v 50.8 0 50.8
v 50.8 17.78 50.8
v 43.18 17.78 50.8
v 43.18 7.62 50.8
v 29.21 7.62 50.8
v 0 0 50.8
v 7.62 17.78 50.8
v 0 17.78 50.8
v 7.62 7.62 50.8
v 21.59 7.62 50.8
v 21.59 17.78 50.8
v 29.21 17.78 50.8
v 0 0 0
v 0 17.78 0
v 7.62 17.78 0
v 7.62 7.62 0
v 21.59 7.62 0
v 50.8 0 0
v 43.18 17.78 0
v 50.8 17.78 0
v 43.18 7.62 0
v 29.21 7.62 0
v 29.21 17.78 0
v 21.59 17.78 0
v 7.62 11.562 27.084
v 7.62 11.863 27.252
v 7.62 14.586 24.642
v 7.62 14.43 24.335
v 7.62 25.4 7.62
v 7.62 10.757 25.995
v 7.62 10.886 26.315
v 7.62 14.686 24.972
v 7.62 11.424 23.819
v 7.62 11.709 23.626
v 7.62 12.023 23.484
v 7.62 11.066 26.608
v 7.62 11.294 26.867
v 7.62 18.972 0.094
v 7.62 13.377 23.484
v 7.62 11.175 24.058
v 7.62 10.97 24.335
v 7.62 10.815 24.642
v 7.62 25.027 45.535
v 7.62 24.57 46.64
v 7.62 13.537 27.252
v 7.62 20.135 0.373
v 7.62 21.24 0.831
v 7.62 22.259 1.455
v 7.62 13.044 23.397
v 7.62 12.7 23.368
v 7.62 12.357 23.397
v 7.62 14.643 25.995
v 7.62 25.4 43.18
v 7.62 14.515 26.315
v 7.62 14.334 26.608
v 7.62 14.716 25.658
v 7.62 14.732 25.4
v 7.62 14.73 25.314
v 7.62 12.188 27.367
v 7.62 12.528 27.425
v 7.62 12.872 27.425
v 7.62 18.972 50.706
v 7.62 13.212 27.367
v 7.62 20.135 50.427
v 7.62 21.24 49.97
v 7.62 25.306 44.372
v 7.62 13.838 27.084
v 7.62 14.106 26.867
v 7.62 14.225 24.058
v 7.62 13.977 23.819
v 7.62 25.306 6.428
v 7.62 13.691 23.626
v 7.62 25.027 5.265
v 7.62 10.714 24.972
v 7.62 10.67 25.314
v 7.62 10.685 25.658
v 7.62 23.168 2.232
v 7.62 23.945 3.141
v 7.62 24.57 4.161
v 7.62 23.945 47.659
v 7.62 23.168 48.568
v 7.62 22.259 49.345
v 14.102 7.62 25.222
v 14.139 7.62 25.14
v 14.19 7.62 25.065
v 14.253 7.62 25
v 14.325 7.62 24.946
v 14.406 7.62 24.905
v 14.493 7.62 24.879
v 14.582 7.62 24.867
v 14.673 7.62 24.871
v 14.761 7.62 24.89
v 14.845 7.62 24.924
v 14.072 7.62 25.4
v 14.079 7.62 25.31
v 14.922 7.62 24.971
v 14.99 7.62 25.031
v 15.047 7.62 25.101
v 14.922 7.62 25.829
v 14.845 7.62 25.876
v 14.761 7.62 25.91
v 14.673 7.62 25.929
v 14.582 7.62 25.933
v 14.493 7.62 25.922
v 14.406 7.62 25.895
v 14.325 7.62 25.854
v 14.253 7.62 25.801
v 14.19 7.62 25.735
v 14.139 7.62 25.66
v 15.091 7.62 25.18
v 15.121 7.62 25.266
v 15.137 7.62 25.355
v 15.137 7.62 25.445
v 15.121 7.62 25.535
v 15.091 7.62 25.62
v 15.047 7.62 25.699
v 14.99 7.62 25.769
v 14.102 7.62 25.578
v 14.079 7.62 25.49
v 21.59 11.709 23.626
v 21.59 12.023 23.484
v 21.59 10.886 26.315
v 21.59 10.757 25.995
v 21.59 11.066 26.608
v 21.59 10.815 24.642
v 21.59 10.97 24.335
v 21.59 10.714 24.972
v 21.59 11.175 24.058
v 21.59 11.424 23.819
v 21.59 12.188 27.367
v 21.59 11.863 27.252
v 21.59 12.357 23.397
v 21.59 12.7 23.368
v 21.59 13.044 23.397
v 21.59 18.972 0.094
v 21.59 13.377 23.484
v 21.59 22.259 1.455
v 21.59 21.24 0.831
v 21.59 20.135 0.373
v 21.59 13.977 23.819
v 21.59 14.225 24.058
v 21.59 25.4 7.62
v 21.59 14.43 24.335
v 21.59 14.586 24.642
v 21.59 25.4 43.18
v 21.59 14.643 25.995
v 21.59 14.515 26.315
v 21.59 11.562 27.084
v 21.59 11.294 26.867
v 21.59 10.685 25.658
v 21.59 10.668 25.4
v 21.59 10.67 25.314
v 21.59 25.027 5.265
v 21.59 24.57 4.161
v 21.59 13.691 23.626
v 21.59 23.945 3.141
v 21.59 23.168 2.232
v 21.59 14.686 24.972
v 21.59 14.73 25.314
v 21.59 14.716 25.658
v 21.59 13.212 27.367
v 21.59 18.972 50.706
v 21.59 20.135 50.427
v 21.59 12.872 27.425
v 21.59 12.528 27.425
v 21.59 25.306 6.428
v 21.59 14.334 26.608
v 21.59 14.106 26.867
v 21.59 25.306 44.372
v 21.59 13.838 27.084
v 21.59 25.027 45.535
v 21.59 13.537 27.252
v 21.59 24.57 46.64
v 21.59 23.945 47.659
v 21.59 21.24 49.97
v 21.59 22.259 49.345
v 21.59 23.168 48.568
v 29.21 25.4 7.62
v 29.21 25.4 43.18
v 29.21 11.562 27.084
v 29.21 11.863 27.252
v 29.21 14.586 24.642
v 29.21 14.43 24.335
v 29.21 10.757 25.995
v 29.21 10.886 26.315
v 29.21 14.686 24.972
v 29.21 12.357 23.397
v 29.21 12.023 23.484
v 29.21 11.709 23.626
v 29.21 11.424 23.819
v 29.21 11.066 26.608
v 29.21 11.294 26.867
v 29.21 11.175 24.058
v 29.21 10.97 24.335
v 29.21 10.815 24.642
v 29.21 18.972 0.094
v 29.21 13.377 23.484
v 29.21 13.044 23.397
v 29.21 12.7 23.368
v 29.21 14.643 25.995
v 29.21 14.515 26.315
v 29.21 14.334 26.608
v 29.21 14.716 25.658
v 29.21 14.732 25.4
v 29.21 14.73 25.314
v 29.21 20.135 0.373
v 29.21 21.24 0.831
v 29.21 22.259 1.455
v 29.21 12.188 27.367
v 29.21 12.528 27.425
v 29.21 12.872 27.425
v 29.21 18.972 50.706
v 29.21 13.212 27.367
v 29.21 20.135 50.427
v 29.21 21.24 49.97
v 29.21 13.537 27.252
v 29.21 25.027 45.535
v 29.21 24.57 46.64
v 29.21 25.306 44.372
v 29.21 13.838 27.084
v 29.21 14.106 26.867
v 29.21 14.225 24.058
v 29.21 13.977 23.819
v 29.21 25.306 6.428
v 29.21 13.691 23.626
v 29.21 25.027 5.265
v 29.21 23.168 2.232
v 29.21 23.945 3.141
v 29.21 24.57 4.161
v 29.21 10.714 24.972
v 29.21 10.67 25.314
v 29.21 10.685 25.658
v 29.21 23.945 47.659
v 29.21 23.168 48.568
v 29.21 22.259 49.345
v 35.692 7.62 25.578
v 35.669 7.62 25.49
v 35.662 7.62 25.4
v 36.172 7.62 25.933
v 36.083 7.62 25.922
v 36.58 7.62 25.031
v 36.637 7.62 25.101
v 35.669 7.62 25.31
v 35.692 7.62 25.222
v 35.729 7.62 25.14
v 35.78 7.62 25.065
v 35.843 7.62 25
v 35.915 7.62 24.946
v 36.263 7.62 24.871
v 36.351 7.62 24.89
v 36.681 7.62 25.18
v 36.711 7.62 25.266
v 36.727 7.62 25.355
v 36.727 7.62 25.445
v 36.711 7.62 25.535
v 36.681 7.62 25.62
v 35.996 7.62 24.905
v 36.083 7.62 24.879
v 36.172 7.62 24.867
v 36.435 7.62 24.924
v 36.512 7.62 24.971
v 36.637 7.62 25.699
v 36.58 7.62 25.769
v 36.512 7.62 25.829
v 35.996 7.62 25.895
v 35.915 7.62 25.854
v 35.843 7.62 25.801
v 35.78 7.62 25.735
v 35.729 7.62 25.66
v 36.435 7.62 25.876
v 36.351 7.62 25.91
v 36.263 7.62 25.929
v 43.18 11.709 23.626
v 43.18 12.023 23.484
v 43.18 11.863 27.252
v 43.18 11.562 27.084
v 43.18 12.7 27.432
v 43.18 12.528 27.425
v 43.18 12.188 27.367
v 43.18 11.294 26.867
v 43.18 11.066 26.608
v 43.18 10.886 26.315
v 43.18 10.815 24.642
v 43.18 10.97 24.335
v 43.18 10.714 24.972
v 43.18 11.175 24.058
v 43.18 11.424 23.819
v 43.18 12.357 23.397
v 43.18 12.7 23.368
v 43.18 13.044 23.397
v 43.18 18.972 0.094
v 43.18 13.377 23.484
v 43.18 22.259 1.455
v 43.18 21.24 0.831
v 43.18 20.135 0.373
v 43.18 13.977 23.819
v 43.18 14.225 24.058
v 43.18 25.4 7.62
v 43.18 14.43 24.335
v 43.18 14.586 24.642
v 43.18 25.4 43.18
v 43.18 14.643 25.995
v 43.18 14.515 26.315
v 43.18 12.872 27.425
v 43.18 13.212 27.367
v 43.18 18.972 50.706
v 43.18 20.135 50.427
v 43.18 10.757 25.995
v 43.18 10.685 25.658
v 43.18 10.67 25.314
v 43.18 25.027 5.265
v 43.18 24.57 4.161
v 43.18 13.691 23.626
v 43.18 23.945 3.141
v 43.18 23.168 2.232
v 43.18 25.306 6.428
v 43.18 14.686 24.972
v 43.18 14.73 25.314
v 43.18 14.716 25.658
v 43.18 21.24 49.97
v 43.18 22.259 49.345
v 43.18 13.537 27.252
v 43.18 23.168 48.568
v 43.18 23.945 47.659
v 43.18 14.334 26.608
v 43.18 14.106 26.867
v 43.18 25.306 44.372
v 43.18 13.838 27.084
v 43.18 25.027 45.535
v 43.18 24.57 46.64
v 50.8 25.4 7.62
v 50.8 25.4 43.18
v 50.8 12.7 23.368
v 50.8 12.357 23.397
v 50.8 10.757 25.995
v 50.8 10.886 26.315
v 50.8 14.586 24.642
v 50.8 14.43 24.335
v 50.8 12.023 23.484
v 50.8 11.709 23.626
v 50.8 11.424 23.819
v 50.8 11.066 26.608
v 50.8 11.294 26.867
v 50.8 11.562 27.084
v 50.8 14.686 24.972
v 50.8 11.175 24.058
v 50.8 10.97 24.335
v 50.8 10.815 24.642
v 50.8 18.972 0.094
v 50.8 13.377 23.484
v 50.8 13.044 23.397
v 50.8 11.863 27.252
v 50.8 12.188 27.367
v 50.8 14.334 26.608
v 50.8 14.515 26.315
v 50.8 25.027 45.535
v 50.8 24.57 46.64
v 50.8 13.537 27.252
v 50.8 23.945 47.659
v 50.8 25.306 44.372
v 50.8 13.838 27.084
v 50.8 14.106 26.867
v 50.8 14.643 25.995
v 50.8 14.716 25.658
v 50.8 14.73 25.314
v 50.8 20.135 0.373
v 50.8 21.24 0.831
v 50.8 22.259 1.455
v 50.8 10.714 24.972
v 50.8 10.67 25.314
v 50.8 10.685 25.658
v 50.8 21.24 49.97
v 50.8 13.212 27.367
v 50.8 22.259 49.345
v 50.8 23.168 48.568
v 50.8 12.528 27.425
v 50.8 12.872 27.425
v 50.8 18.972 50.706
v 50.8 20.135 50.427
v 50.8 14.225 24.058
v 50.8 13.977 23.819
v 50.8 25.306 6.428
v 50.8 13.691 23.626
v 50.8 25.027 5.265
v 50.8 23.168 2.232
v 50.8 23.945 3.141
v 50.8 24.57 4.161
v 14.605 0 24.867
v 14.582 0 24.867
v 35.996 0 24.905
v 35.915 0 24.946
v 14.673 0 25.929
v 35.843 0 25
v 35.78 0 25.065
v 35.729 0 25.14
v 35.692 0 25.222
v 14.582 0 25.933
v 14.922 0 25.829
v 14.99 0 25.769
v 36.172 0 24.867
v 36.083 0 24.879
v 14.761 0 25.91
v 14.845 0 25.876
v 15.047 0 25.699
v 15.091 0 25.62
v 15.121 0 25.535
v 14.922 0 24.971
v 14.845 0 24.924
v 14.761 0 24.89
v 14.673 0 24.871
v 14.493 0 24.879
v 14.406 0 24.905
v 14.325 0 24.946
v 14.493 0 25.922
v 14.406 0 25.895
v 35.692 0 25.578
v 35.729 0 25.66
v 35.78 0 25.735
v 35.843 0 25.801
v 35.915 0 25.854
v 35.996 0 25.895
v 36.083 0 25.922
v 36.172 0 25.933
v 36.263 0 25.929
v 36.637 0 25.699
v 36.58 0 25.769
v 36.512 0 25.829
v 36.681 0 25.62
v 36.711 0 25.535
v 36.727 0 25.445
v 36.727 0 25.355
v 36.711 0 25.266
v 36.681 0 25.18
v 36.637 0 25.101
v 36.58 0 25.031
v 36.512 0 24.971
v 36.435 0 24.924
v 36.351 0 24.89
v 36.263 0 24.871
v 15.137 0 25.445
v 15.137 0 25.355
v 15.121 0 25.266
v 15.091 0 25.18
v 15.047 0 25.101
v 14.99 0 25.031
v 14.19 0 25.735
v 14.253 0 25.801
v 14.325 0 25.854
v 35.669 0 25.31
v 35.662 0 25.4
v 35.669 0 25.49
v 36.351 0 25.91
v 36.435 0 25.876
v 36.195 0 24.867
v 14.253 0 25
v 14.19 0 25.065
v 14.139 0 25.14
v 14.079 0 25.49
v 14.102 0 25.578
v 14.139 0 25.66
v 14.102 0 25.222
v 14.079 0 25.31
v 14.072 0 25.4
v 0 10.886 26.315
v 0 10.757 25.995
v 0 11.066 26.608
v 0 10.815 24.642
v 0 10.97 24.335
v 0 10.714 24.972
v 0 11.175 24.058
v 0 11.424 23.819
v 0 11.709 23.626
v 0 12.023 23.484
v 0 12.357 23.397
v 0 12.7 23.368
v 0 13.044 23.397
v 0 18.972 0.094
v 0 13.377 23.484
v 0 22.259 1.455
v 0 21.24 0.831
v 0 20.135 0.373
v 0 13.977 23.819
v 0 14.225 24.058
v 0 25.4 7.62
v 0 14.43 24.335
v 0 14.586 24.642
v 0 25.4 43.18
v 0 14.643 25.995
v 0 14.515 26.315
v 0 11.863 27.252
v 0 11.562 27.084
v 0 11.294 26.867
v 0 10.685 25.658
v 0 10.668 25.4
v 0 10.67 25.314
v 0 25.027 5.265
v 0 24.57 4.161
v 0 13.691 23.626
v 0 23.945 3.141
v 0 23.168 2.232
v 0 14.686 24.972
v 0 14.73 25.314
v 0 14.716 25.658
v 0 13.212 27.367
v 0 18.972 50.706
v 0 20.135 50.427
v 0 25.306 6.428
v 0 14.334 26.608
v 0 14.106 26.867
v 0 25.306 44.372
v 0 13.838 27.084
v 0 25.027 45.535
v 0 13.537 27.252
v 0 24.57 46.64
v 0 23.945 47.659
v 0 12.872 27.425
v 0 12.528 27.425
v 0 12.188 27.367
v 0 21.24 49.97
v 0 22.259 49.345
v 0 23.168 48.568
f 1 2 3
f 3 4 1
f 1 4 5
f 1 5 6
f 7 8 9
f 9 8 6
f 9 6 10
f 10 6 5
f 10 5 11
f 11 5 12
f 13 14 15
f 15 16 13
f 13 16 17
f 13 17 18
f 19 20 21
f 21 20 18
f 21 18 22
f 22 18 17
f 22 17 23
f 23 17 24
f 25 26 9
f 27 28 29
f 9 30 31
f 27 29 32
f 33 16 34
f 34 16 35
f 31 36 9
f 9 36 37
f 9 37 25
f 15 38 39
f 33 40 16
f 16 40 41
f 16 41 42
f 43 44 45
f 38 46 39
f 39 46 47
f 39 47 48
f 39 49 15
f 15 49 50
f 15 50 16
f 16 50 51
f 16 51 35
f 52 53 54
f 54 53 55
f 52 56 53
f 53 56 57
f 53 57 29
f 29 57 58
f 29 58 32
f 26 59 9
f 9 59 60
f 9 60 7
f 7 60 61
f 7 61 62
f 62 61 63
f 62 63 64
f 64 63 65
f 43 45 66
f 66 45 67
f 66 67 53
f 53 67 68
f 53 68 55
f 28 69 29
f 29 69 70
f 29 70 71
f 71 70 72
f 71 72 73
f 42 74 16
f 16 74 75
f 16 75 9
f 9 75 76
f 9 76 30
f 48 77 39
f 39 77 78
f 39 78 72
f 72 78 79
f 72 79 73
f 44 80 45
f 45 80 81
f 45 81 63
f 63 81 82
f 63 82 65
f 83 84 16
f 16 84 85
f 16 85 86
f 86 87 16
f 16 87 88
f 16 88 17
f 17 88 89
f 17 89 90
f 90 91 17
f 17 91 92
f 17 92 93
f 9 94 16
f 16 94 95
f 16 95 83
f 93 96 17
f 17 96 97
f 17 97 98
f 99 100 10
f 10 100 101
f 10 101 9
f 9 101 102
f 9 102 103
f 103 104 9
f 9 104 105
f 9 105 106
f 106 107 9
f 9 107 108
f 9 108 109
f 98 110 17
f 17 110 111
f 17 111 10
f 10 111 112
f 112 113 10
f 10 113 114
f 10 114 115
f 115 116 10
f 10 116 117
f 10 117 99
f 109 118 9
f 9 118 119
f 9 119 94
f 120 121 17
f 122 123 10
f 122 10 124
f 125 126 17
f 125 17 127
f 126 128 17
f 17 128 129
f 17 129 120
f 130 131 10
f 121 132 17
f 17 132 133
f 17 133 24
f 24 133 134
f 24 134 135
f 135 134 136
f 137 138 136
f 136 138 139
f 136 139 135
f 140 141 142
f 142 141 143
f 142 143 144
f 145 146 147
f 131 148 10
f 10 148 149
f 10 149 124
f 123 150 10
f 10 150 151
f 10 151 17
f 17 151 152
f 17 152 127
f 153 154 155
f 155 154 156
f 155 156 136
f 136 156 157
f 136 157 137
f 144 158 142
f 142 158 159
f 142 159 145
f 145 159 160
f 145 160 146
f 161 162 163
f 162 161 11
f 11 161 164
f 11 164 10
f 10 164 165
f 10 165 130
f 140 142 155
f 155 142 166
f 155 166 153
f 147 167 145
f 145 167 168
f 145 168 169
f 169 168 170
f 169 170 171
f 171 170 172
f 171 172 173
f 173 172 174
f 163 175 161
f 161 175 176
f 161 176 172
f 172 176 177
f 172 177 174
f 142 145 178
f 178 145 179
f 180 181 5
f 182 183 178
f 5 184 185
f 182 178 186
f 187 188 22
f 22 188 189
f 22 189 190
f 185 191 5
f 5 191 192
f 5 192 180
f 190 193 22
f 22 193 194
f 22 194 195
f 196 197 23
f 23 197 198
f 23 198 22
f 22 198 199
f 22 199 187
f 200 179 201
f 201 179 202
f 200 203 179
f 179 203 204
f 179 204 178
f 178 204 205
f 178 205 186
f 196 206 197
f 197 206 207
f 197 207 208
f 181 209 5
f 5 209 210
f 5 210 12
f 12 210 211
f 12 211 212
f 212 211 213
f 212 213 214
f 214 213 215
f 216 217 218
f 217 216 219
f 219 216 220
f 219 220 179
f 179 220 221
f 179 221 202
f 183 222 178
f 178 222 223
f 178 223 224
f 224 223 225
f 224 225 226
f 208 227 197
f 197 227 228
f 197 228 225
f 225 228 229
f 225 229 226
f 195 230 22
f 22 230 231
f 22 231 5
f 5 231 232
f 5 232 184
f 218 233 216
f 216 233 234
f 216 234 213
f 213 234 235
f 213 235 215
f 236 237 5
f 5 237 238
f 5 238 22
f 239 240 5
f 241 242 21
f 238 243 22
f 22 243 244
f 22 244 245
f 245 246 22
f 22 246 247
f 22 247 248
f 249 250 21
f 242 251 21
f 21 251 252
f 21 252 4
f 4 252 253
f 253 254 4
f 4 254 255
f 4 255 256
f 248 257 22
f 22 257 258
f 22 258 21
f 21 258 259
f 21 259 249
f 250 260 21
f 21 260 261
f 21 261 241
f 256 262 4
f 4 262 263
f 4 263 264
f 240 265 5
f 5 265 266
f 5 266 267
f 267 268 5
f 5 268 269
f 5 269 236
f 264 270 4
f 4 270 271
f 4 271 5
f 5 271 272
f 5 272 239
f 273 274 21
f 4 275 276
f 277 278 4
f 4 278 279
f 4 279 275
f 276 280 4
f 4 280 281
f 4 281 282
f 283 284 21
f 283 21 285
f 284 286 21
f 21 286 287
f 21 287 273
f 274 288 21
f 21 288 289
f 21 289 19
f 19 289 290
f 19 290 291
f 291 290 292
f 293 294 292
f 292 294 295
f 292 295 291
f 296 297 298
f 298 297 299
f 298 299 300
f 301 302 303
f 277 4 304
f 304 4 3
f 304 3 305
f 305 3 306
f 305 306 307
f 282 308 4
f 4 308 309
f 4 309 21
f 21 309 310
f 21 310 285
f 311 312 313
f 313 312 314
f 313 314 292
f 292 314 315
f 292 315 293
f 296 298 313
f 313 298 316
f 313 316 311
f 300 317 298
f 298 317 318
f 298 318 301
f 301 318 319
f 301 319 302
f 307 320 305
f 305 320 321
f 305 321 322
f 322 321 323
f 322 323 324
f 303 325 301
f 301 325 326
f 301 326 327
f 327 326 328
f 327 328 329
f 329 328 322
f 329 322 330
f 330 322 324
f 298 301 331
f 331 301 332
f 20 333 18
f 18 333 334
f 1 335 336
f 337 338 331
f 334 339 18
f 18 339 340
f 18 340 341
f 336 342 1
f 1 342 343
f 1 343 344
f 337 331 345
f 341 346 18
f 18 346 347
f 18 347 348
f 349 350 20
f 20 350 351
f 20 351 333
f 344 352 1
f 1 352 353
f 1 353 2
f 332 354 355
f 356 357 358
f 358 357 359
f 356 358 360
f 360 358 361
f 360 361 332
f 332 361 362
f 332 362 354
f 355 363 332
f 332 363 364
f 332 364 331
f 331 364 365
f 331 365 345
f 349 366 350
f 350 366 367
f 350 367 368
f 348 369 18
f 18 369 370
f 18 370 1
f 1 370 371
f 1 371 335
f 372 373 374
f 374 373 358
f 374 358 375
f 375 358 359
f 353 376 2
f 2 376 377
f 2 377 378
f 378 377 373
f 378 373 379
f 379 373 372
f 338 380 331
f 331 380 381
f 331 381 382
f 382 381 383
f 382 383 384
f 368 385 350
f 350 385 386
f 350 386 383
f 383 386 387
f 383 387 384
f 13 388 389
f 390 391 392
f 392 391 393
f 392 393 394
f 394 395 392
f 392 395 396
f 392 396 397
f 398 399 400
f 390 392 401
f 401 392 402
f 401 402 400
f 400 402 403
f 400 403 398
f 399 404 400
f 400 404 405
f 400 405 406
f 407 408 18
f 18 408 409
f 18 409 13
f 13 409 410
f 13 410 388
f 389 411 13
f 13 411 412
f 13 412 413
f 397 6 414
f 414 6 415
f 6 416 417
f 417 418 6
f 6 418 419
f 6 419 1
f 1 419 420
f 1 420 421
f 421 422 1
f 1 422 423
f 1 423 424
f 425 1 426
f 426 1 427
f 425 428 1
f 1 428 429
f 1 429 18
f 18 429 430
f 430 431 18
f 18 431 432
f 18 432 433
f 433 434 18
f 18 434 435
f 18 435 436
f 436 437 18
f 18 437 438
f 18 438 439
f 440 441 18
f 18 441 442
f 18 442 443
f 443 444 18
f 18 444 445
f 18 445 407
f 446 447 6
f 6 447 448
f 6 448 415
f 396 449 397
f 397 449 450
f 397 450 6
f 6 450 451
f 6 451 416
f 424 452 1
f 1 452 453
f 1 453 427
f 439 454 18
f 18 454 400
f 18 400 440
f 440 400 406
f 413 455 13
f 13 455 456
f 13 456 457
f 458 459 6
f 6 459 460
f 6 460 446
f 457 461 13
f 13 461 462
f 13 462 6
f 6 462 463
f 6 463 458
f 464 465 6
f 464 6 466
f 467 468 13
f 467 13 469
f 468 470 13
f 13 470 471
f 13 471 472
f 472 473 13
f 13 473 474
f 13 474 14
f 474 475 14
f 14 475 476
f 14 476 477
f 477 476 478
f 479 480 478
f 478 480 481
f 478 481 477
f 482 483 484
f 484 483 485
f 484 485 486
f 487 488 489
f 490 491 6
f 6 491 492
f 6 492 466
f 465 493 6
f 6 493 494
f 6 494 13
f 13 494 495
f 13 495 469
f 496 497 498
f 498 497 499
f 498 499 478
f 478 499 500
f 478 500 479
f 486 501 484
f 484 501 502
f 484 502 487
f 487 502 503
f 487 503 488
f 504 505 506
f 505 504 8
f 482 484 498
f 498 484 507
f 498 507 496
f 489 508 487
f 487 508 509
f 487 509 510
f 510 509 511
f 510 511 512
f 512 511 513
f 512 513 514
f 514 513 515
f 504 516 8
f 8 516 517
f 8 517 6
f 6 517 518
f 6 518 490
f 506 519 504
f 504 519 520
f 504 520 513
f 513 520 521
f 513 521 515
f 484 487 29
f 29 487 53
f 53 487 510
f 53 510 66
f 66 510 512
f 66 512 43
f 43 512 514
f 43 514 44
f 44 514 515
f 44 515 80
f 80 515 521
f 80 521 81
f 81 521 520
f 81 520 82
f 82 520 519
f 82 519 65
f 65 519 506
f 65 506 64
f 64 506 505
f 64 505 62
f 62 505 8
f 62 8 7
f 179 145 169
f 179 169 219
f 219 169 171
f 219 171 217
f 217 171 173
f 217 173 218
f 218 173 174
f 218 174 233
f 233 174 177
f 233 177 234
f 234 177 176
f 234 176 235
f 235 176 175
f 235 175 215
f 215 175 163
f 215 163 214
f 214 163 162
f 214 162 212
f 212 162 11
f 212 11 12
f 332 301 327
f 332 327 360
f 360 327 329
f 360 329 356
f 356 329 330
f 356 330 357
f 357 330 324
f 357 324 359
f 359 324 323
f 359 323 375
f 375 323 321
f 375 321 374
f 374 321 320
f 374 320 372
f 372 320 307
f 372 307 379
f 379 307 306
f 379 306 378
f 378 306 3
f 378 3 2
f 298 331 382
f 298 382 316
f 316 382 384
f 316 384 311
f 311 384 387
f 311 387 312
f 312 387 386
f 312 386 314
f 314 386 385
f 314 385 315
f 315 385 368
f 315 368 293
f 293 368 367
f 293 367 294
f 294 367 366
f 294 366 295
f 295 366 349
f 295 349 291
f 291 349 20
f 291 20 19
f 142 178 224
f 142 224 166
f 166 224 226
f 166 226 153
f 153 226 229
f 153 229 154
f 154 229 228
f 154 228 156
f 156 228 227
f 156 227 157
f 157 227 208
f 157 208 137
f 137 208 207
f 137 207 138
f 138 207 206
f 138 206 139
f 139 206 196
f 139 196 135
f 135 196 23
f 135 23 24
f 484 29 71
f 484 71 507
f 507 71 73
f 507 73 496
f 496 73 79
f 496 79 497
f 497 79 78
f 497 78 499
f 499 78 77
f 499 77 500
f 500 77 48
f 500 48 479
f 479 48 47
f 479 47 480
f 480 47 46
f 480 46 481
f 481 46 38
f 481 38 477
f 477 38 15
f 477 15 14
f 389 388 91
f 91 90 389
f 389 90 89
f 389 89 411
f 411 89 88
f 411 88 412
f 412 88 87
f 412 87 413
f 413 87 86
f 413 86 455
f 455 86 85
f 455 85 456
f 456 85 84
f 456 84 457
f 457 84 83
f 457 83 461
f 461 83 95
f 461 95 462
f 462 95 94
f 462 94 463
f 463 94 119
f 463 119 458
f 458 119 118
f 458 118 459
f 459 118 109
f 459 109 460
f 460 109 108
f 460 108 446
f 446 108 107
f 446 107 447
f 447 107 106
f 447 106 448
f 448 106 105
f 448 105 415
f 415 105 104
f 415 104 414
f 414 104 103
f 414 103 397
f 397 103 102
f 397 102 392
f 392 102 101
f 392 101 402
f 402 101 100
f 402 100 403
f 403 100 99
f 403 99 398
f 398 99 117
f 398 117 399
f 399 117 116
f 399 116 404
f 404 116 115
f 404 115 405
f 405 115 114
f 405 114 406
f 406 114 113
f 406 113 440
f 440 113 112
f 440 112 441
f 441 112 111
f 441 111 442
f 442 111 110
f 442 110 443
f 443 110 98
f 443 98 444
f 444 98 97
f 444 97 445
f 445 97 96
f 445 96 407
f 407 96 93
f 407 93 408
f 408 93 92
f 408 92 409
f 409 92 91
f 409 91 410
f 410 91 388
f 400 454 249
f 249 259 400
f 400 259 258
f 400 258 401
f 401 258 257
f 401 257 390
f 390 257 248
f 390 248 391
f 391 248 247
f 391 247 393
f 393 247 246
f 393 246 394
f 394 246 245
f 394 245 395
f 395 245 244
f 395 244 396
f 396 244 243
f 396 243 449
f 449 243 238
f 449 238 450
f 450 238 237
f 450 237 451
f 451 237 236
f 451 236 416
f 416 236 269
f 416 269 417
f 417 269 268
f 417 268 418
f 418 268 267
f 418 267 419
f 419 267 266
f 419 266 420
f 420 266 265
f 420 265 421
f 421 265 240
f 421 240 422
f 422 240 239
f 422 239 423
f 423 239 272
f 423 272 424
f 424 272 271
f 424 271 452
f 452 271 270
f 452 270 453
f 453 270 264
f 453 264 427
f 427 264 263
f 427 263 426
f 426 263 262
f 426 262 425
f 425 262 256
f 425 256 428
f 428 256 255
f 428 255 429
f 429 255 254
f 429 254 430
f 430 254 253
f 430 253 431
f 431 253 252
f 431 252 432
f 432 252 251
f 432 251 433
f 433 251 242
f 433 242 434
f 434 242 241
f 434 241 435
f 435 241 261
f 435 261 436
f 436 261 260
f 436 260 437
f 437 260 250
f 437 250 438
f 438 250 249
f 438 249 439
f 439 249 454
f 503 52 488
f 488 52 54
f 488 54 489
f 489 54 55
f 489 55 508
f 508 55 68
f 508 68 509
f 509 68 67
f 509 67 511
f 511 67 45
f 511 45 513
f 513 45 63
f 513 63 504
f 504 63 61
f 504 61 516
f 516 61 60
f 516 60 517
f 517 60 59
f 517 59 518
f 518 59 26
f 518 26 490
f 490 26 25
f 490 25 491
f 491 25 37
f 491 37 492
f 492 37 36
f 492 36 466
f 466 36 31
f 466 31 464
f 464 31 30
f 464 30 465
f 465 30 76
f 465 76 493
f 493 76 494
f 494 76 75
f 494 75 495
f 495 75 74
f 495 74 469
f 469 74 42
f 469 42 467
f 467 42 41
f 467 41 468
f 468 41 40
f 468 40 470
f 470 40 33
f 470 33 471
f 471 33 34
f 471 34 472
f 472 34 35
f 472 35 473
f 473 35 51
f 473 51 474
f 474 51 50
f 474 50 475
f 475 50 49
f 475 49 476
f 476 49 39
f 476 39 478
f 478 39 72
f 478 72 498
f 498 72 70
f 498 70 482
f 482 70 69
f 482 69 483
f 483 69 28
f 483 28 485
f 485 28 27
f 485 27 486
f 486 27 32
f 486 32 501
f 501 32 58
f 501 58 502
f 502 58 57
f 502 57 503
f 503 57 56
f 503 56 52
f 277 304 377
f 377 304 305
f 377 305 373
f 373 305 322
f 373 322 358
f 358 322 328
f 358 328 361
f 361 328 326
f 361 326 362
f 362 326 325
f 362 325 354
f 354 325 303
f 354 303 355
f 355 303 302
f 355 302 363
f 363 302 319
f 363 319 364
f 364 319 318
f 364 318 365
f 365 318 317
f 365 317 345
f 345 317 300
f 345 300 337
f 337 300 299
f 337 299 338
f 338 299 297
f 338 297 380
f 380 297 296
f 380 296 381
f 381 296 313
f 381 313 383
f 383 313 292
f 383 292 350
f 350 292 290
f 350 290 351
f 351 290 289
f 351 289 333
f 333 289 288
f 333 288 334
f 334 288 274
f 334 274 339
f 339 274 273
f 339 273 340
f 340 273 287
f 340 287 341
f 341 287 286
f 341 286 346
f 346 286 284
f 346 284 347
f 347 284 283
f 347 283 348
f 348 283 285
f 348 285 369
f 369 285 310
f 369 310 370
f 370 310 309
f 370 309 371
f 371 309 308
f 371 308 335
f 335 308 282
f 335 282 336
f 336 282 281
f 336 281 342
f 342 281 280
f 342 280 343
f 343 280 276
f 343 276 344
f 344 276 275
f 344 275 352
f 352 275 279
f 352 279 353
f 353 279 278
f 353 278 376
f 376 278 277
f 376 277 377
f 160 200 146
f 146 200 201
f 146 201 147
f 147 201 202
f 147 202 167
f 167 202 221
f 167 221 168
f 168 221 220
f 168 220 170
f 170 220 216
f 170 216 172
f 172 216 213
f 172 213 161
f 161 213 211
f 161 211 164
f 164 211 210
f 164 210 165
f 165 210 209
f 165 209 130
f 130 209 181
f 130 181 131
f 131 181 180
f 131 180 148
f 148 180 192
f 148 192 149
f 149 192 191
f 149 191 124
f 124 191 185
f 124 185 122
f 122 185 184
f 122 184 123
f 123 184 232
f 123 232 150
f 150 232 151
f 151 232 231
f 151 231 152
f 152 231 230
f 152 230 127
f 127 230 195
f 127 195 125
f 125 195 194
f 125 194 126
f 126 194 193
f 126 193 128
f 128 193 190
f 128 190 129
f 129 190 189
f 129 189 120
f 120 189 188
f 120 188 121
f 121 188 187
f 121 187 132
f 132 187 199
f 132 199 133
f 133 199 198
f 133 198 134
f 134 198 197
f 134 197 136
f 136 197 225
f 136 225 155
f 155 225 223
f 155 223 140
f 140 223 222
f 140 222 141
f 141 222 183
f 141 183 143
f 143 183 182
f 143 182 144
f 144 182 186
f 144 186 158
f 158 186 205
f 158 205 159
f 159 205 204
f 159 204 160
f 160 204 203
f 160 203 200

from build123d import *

# Parameters (mm, degrees)
BOSS_EXTRUDE1_DEPTH = 50.8
FILLET3_R           = 7.62
FILLET4_R           = 7.62
SKETCH3_R           = 0.5334
CUT_EXTRUDE1_DEPTH  = 75.009515604
SKETCH4_R           = 2.032
CUT_EXTRUDE2_DEPTH  = 77.2


with BuildPart() as part:
    # 3DSketch1 → Boss-Extrude1 (new body)
    with BuildSketch(Plane(origin=(0, 25.4, 0), x_dir=(0.894427190999916, -0.447213595499958, 0), z_dir=(0, 0, -1))):
        Polygon((0, 0), (11.359225326, 22.718450651), (56.796126628, 0), (45.436901303, -22.718450651), (38.621366107, -19.310683054), (46.572823835, -3.407767598), (34.077675977, 2.839806331), (26.126218249, -13.063109125), (19.310683054, -9.655341527), (27.262140782, 6.247573929), (14.766992923, 12.495147858), (6.815535195, -3.407767598), align=None)
    extrude(amount=-BOSS_EXTRUDE1_DEPTH)

    # Fillet3
    fillet3_edges = [part.edges().sort_by_distance(p)[0] for p in [
        (3.81, 25.4, 50.8),
        (25.4, 25.4, 50.8),
        (46.99, 25.4, 50.8),
    ]]
    fillet(fillet3_edges, radius=FILLET3_R)

    # Fillet4
    fillet4_edges = [part.edges().sort_by_distance(p)[0] for p in [
        (46.99, 25.4, 0),
        (25.4, 25.4, 0),
        (3.81, 25.4, 0),
    ]]
    fillet(fillet4_edges, radius=FILLET4_R)

    # Sketch3 → Cut-Extrude1 (cut, through all)
    with BuildSketch(Plane(origin=(0, 7.62, 0), x_dir=(1, 0, 0), z_dir=(0, 1, 0))):
        with Locations(Location((14.605, -25.4, 0), (0, 0, 180))):
            Circle(SKETCH3_R)
        with Locations(Location((36.195, -25.4, 0), (0, 0, 180))):
            Circle(SKETCH3_R)
    extrude(amount=-CUT_EXTRUDE1_DEPTH, mode=Mode.SUBTRACT)

    # Sketch4 → Cut-Extrude2 (cut, through all)
    with BuildSketch(Plane(origin=(50.8, 0, 0), x_dir=(0, 0, -1), z_dir=(1, 0, 0))):
        with Locations(Location((-25.4, 12.7, 0), (0, 0, 90))):
            Circle(SKETCH4_R)
    extrude(amount=-CUT_EXTRUDE2_DEPTH, mode=Mode.SUBTRACT)


solid = part.part
